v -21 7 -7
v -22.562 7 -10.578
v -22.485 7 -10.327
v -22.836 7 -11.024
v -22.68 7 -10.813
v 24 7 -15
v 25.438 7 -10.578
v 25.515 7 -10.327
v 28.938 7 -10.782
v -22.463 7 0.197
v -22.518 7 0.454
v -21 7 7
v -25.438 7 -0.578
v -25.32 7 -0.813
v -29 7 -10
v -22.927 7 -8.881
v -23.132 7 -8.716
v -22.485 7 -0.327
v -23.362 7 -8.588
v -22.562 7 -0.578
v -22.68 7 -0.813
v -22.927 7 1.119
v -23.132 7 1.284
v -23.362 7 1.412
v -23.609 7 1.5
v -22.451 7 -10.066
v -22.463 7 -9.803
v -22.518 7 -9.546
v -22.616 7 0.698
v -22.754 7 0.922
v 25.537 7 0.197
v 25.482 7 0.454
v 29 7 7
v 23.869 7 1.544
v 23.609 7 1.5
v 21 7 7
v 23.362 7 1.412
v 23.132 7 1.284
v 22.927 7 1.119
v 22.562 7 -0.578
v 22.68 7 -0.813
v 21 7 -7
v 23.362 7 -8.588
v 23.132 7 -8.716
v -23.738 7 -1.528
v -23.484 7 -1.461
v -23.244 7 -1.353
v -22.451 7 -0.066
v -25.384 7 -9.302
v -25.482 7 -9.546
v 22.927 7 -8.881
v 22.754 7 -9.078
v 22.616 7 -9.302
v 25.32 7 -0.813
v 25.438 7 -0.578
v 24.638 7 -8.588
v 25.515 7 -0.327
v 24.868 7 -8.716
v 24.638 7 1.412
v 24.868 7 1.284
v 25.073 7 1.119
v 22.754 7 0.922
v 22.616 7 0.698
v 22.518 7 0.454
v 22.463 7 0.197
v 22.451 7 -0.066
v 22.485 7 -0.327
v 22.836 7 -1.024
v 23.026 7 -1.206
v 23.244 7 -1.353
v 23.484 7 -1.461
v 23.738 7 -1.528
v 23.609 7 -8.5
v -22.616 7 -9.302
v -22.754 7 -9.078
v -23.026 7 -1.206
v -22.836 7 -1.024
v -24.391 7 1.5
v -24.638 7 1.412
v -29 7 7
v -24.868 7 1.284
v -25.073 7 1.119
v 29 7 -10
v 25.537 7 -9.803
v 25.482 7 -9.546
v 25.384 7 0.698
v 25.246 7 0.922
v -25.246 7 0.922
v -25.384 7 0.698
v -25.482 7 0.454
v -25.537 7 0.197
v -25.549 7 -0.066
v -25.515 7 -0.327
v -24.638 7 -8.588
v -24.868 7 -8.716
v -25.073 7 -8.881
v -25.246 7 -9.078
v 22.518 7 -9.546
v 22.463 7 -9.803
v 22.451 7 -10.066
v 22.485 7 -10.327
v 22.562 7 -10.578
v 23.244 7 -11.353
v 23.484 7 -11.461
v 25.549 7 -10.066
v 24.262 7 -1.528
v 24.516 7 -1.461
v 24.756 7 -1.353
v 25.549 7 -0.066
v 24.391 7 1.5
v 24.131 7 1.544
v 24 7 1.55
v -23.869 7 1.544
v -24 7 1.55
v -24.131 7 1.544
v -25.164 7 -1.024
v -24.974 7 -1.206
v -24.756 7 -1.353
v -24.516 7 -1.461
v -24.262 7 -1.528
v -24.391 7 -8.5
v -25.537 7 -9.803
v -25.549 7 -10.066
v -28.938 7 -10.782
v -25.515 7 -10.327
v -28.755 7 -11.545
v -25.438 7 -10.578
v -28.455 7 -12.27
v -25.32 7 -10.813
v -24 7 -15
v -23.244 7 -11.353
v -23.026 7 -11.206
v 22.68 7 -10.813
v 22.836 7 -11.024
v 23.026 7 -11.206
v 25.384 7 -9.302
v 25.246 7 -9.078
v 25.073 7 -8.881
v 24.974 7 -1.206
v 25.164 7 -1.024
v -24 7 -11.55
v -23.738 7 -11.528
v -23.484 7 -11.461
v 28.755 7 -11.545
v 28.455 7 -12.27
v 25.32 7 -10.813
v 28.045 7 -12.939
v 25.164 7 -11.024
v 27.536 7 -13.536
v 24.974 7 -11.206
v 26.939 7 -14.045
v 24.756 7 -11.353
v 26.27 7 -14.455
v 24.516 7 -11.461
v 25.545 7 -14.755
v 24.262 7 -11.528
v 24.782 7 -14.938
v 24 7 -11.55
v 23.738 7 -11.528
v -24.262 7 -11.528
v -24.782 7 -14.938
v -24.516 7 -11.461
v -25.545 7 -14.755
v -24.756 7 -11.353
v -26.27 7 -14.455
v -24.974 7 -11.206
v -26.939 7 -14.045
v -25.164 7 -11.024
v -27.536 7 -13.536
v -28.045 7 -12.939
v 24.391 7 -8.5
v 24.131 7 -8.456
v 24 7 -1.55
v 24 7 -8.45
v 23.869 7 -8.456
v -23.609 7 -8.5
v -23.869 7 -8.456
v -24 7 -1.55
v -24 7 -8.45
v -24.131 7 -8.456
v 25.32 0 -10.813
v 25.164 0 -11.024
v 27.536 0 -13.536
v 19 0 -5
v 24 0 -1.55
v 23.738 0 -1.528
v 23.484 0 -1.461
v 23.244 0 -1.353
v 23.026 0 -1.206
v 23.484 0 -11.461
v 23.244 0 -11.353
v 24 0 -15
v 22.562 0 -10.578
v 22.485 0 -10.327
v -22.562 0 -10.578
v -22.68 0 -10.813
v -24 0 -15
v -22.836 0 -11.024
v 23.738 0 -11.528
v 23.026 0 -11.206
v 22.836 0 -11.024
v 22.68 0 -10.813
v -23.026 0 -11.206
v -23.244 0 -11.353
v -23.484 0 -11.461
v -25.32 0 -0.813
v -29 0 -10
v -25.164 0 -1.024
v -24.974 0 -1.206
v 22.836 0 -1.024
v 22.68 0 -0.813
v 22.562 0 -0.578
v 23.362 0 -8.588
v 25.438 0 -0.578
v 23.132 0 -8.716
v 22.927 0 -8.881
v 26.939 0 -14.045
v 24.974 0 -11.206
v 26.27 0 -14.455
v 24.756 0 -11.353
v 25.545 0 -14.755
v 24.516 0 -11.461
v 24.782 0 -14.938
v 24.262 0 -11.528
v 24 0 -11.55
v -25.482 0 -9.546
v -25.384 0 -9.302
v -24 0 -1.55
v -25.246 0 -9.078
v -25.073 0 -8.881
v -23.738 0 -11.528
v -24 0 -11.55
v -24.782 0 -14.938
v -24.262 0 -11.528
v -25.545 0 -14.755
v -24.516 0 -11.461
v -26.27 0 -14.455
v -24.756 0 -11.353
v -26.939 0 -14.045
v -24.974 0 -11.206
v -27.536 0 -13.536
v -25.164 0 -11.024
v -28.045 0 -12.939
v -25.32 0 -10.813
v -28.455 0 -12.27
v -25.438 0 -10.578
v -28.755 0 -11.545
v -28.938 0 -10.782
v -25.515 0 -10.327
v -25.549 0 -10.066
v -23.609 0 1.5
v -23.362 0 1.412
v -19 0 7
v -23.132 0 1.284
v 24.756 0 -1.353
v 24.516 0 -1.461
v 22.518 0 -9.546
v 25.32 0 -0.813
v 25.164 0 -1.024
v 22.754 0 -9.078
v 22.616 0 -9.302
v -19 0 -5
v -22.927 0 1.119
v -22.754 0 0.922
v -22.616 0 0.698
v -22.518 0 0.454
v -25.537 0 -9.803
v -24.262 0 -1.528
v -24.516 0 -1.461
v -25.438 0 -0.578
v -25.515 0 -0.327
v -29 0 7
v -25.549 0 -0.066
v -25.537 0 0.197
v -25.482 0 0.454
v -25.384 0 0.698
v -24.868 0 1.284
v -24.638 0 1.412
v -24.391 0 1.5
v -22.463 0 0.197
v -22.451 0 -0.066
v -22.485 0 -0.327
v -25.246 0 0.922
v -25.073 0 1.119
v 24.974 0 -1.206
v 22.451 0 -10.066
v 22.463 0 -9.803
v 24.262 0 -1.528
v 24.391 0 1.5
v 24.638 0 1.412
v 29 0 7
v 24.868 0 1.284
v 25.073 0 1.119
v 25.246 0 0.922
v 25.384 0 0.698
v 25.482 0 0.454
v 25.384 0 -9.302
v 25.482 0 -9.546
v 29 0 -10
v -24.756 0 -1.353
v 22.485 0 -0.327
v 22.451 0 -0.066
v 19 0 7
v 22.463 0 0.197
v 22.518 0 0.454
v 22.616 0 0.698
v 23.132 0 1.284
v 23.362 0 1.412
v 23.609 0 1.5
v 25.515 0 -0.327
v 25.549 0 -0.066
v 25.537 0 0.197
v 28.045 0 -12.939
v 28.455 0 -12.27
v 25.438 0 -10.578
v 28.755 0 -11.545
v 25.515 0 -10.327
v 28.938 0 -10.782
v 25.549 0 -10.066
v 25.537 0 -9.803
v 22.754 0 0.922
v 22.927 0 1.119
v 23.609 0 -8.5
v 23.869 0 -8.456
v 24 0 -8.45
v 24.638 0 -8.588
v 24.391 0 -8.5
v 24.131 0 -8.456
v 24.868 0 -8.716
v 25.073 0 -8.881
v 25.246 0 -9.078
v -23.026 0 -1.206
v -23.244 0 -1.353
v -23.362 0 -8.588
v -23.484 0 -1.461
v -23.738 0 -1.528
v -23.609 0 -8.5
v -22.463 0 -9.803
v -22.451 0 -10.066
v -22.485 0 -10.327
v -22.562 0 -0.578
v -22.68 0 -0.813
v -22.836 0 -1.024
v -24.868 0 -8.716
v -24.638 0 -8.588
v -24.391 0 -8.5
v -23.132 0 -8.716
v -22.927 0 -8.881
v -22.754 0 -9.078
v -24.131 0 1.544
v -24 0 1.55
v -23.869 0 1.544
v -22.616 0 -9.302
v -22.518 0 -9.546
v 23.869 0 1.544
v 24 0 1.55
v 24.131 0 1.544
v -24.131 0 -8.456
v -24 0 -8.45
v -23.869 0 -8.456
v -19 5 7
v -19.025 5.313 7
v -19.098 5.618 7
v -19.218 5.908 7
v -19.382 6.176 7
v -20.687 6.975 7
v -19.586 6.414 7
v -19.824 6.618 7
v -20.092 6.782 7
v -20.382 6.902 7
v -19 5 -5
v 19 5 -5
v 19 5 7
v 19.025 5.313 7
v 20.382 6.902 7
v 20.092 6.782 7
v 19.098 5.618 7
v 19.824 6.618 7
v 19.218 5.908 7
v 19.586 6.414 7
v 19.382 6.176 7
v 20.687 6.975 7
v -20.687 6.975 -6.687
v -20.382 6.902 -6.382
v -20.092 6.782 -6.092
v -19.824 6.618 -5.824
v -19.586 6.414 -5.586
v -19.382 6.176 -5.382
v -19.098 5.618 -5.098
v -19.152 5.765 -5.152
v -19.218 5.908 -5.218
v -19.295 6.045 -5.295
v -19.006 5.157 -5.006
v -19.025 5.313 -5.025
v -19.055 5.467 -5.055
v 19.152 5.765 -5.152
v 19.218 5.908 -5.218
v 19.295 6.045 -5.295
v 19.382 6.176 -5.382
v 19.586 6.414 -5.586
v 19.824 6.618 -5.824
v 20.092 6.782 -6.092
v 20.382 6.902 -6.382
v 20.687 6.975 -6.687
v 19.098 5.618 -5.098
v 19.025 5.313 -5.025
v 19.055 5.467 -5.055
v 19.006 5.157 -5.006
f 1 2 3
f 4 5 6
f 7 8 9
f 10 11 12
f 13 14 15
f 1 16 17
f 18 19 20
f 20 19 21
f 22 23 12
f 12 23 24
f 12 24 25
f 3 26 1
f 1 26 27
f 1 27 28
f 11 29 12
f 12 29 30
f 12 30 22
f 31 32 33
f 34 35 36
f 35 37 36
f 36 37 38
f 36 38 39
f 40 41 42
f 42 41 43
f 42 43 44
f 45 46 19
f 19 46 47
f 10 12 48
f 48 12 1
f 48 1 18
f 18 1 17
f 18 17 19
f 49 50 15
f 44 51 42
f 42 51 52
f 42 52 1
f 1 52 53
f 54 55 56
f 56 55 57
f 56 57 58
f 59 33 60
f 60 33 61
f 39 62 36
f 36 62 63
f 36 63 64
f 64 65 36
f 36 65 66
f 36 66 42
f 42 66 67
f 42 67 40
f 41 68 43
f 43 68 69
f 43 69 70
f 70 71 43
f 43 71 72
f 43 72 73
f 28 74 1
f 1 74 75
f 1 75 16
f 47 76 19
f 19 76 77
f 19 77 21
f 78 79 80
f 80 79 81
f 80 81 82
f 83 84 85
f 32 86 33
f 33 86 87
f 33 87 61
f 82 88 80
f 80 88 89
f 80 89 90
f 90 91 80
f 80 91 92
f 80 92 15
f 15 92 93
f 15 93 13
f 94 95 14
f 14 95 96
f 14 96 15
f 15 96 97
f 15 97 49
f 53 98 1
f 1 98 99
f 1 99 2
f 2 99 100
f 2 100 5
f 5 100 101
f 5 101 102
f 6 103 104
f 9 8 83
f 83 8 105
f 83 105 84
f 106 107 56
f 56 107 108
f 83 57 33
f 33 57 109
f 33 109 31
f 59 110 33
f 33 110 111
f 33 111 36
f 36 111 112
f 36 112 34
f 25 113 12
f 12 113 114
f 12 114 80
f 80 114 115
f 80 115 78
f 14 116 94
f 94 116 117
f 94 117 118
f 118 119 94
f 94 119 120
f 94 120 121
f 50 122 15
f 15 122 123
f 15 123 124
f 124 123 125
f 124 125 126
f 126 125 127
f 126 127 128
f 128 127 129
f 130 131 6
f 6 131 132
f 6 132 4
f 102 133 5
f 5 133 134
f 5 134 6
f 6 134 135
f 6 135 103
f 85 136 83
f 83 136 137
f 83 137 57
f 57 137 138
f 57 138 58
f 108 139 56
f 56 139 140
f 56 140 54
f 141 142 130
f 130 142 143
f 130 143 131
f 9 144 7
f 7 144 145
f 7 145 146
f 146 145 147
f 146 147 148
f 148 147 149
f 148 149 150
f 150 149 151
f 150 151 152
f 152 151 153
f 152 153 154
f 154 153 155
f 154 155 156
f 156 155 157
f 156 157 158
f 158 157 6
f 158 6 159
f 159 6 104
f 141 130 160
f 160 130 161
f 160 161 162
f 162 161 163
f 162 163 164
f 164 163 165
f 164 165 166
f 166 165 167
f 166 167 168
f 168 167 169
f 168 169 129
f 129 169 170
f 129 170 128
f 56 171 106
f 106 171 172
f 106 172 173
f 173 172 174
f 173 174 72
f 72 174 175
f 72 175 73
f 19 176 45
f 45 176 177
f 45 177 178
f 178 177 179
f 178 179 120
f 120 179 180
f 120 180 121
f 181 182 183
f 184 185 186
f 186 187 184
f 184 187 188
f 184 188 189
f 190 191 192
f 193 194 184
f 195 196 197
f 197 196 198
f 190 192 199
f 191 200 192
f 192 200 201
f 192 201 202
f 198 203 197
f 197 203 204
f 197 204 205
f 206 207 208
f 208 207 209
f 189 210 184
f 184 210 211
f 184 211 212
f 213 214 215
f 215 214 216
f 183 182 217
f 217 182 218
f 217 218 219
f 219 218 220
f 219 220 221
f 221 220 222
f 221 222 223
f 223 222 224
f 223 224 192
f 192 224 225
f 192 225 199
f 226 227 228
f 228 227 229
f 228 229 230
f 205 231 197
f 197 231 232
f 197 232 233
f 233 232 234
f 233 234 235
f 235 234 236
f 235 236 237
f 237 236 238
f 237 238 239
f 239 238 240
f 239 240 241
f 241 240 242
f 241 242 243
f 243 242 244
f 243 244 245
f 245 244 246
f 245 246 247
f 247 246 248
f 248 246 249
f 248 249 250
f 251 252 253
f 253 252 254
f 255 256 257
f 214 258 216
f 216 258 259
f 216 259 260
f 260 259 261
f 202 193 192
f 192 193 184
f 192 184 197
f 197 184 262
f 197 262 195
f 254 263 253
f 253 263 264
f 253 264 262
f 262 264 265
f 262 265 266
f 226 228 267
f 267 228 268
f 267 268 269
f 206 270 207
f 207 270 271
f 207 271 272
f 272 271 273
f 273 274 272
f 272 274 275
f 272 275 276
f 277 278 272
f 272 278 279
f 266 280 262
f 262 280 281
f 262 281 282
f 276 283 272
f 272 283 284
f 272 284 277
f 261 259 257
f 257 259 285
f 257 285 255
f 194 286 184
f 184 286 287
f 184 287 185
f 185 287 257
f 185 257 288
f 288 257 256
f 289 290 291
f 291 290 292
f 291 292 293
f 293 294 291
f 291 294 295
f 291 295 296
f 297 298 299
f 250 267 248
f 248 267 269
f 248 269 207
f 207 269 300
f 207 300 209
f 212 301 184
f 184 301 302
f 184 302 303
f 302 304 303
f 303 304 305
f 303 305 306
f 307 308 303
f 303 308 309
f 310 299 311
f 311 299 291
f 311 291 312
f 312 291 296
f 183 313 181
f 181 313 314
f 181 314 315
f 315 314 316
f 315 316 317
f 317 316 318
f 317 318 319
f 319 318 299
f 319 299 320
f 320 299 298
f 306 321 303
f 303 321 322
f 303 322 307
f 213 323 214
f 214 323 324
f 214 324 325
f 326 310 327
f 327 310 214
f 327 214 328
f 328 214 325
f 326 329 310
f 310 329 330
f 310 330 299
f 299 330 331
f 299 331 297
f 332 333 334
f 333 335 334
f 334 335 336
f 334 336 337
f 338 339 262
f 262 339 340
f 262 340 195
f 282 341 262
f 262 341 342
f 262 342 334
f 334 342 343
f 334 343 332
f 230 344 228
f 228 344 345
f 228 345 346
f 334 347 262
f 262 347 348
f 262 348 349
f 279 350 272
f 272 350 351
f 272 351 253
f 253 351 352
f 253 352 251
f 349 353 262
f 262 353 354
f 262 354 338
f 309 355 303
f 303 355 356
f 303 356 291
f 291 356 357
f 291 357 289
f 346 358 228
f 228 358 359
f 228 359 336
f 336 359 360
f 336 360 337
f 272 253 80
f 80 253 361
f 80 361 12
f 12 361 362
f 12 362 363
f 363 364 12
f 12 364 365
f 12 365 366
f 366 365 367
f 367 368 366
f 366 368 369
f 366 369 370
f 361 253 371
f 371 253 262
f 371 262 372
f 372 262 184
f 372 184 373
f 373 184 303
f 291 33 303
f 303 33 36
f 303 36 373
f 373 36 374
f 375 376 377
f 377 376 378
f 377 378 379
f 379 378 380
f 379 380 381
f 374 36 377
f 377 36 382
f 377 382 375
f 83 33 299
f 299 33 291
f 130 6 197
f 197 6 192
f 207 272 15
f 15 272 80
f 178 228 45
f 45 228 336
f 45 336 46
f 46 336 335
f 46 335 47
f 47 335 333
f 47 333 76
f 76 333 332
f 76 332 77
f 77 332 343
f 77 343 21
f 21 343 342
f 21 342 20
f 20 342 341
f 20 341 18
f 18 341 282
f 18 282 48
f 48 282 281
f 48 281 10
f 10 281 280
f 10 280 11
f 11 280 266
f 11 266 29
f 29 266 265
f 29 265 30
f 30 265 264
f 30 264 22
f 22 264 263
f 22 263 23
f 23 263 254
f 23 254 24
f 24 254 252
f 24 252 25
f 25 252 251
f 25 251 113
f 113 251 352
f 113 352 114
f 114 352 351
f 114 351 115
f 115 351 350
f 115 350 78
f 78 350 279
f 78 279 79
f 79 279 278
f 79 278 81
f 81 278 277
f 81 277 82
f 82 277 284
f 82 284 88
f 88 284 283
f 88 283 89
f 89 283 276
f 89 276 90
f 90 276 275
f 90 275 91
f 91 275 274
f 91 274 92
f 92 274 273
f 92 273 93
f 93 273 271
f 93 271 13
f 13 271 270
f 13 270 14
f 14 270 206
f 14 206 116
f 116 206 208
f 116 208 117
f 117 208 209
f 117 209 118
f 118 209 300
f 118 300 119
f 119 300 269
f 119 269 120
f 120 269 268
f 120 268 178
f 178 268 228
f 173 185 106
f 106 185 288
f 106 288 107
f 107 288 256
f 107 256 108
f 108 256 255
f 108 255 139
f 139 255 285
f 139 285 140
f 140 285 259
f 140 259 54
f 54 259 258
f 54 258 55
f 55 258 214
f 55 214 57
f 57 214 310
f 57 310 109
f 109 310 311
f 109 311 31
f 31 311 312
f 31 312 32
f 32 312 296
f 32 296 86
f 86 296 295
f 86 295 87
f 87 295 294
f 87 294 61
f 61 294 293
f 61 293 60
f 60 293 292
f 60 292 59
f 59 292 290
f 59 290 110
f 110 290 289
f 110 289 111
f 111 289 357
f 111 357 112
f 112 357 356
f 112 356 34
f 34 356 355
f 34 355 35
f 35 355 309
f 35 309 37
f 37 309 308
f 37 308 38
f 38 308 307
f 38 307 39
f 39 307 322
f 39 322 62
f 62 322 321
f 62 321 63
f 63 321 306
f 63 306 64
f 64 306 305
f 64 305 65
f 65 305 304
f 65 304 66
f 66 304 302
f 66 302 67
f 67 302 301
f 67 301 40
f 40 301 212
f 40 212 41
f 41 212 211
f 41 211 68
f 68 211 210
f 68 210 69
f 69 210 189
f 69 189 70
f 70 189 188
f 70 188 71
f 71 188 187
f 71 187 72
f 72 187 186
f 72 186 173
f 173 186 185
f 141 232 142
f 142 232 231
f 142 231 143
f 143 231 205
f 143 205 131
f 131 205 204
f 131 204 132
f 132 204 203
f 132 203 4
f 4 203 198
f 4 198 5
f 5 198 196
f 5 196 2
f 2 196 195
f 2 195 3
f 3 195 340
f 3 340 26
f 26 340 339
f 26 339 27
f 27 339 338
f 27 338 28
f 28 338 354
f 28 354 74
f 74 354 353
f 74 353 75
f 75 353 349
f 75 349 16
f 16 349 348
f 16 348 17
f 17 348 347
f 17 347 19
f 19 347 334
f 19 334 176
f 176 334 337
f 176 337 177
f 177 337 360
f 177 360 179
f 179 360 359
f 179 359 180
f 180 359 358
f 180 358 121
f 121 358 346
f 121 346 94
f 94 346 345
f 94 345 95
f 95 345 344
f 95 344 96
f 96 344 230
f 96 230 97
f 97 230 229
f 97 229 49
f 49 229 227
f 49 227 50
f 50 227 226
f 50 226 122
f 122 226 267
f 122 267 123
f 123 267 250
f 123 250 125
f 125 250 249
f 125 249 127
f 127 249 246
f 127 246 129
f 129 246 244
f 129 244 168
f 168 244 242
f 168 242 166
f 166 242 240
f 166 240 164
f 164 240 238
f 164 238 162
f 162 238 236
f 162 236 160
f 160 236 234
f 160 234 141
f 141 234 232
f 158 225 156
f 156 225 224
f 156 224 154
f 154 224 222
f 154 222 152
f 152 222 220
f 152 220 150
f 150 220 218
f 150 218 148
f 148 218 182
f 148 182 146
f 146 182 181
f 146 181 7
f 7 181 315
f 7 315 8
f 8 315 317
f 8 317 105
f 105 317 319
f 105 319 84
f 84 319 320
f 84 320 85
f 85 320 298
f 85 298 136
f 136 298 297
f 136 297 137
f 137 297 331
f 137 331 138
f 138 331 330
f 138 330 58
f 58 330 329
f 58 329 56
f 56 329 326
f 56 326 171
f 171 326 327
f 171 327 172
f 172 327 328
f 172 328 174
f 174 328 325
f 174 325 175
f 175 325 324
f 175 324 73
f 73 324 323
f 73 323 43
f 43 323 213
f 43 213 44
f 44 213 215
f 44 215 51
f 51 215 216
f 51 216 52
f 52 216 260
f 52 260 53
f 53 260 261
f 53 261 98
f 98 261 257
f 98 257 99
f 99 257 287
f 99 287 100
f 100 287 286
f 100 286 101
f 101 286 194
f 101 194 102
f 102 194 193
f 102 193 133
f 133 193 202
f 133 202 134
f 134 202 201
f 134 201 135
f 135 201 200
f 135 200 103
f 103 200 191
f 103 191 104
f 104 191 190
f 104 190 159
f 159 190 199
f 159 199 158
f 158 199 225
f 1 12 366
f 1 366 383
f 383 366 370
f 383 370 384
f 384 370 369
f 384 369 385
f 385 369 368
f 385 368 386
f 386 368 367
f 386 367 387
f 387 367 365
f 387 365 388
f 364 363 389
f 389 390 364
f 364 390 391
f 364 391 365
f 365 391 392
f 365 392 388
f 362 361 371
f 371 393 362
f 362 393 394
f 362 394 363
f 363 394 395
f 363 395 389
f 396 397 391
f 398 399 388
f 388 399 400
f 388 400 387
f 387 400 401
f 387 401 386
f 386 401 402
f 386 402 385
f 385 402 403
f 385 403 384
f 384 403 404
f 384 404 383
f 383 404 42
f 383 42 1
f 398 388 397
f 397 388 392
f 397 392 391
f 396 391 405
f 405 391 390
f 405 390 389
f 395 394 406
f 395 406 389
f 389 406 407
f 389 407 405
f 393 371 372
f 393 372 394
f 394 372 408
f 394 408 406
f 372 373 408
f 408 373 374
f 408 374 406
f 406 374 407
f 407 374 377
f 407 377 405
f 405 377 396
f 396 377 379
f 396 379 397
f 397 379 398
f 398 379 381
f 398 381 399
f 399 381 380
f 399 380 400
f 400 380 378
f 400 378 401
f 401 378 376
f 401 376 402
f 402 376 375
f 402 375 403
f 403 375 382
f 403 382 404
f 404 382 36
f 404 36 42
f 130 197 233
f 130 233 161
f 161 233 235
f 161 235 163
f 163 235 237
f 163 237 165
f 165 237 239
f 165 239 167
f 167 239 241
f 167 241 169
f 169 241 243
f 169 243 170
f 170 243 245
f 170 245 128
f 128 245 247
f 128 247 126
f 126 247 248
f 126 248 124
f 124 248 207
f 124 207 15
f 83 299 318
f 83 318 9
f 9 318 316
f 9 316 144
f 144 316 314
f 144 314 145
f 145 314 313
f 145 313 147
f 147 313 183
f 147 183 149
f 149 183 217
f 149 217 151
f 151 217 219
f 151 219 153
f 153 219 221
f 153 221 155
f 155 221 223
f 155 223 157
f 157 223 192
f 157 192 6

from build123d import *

# Parameters (mm, degrees)
CROQUIS1_R              = 1.55
SALIENTE_EXTRUIR1_DEPTH = 7
REDONDEO2_R             = 2
REDONDEO3_R             = 5


with BuildPart() as part:
    # Croquis1 → Saliente-Extruir1 (new body)
    with BuildSketch(Plane(origin=(0, 0, 0), x_dir=(1, 0, 0), z_dir=(0, 1, 0))):
        Polygon((-29, -7), (-29, 15), (29, 15), (29, -7), (19, -7), (19, 5), (-19, 5), (-19, -7), align=None)
        with Locations(Location((-24, 0, 0), (0, 0, 270))):
            Circle(CROQUIS1_R, mode=Mode.SUBTRACT)
        with Locations(Location((24, 0, 0), (0, 0, 270))):
            Circle(CROQUIS1_R, mode=Mode.SUBTRACT)
        with Locations(Location((-24, 10, 0), (0, 0, 270))):
            Circle(CROQUIS1_R, mode=Mode.SUBTRACT)
        with Locations(Location((24, 10, 0), (0, 0, 270))):
            Circle(CROQUIS1_R, mode=Mode.SUBTRACT)
    extrude(amount=SALIENTE_EXTRUIR1_DEPTH)

    # Redondeo2
    redondeo2_edges = [part.edges().sort_by_distance(p)[0] for p in [
        (0, 7, -5),
        (19, 7, 1),
        (-19, 7, 1),
    ]]
    fillet(redondeo2_edges, radius=REDONDEO2_R)

    # Redondeo3
    redondeo3_edges = [part.edges().sort_by_distance(p)[0] for p in [
        (-29, 3.5, -15),
        (29, 3.5, -15),
    ]]
    fillet(redondeo3_edges, radius=REDONDEO3_R)


solid = part.part
